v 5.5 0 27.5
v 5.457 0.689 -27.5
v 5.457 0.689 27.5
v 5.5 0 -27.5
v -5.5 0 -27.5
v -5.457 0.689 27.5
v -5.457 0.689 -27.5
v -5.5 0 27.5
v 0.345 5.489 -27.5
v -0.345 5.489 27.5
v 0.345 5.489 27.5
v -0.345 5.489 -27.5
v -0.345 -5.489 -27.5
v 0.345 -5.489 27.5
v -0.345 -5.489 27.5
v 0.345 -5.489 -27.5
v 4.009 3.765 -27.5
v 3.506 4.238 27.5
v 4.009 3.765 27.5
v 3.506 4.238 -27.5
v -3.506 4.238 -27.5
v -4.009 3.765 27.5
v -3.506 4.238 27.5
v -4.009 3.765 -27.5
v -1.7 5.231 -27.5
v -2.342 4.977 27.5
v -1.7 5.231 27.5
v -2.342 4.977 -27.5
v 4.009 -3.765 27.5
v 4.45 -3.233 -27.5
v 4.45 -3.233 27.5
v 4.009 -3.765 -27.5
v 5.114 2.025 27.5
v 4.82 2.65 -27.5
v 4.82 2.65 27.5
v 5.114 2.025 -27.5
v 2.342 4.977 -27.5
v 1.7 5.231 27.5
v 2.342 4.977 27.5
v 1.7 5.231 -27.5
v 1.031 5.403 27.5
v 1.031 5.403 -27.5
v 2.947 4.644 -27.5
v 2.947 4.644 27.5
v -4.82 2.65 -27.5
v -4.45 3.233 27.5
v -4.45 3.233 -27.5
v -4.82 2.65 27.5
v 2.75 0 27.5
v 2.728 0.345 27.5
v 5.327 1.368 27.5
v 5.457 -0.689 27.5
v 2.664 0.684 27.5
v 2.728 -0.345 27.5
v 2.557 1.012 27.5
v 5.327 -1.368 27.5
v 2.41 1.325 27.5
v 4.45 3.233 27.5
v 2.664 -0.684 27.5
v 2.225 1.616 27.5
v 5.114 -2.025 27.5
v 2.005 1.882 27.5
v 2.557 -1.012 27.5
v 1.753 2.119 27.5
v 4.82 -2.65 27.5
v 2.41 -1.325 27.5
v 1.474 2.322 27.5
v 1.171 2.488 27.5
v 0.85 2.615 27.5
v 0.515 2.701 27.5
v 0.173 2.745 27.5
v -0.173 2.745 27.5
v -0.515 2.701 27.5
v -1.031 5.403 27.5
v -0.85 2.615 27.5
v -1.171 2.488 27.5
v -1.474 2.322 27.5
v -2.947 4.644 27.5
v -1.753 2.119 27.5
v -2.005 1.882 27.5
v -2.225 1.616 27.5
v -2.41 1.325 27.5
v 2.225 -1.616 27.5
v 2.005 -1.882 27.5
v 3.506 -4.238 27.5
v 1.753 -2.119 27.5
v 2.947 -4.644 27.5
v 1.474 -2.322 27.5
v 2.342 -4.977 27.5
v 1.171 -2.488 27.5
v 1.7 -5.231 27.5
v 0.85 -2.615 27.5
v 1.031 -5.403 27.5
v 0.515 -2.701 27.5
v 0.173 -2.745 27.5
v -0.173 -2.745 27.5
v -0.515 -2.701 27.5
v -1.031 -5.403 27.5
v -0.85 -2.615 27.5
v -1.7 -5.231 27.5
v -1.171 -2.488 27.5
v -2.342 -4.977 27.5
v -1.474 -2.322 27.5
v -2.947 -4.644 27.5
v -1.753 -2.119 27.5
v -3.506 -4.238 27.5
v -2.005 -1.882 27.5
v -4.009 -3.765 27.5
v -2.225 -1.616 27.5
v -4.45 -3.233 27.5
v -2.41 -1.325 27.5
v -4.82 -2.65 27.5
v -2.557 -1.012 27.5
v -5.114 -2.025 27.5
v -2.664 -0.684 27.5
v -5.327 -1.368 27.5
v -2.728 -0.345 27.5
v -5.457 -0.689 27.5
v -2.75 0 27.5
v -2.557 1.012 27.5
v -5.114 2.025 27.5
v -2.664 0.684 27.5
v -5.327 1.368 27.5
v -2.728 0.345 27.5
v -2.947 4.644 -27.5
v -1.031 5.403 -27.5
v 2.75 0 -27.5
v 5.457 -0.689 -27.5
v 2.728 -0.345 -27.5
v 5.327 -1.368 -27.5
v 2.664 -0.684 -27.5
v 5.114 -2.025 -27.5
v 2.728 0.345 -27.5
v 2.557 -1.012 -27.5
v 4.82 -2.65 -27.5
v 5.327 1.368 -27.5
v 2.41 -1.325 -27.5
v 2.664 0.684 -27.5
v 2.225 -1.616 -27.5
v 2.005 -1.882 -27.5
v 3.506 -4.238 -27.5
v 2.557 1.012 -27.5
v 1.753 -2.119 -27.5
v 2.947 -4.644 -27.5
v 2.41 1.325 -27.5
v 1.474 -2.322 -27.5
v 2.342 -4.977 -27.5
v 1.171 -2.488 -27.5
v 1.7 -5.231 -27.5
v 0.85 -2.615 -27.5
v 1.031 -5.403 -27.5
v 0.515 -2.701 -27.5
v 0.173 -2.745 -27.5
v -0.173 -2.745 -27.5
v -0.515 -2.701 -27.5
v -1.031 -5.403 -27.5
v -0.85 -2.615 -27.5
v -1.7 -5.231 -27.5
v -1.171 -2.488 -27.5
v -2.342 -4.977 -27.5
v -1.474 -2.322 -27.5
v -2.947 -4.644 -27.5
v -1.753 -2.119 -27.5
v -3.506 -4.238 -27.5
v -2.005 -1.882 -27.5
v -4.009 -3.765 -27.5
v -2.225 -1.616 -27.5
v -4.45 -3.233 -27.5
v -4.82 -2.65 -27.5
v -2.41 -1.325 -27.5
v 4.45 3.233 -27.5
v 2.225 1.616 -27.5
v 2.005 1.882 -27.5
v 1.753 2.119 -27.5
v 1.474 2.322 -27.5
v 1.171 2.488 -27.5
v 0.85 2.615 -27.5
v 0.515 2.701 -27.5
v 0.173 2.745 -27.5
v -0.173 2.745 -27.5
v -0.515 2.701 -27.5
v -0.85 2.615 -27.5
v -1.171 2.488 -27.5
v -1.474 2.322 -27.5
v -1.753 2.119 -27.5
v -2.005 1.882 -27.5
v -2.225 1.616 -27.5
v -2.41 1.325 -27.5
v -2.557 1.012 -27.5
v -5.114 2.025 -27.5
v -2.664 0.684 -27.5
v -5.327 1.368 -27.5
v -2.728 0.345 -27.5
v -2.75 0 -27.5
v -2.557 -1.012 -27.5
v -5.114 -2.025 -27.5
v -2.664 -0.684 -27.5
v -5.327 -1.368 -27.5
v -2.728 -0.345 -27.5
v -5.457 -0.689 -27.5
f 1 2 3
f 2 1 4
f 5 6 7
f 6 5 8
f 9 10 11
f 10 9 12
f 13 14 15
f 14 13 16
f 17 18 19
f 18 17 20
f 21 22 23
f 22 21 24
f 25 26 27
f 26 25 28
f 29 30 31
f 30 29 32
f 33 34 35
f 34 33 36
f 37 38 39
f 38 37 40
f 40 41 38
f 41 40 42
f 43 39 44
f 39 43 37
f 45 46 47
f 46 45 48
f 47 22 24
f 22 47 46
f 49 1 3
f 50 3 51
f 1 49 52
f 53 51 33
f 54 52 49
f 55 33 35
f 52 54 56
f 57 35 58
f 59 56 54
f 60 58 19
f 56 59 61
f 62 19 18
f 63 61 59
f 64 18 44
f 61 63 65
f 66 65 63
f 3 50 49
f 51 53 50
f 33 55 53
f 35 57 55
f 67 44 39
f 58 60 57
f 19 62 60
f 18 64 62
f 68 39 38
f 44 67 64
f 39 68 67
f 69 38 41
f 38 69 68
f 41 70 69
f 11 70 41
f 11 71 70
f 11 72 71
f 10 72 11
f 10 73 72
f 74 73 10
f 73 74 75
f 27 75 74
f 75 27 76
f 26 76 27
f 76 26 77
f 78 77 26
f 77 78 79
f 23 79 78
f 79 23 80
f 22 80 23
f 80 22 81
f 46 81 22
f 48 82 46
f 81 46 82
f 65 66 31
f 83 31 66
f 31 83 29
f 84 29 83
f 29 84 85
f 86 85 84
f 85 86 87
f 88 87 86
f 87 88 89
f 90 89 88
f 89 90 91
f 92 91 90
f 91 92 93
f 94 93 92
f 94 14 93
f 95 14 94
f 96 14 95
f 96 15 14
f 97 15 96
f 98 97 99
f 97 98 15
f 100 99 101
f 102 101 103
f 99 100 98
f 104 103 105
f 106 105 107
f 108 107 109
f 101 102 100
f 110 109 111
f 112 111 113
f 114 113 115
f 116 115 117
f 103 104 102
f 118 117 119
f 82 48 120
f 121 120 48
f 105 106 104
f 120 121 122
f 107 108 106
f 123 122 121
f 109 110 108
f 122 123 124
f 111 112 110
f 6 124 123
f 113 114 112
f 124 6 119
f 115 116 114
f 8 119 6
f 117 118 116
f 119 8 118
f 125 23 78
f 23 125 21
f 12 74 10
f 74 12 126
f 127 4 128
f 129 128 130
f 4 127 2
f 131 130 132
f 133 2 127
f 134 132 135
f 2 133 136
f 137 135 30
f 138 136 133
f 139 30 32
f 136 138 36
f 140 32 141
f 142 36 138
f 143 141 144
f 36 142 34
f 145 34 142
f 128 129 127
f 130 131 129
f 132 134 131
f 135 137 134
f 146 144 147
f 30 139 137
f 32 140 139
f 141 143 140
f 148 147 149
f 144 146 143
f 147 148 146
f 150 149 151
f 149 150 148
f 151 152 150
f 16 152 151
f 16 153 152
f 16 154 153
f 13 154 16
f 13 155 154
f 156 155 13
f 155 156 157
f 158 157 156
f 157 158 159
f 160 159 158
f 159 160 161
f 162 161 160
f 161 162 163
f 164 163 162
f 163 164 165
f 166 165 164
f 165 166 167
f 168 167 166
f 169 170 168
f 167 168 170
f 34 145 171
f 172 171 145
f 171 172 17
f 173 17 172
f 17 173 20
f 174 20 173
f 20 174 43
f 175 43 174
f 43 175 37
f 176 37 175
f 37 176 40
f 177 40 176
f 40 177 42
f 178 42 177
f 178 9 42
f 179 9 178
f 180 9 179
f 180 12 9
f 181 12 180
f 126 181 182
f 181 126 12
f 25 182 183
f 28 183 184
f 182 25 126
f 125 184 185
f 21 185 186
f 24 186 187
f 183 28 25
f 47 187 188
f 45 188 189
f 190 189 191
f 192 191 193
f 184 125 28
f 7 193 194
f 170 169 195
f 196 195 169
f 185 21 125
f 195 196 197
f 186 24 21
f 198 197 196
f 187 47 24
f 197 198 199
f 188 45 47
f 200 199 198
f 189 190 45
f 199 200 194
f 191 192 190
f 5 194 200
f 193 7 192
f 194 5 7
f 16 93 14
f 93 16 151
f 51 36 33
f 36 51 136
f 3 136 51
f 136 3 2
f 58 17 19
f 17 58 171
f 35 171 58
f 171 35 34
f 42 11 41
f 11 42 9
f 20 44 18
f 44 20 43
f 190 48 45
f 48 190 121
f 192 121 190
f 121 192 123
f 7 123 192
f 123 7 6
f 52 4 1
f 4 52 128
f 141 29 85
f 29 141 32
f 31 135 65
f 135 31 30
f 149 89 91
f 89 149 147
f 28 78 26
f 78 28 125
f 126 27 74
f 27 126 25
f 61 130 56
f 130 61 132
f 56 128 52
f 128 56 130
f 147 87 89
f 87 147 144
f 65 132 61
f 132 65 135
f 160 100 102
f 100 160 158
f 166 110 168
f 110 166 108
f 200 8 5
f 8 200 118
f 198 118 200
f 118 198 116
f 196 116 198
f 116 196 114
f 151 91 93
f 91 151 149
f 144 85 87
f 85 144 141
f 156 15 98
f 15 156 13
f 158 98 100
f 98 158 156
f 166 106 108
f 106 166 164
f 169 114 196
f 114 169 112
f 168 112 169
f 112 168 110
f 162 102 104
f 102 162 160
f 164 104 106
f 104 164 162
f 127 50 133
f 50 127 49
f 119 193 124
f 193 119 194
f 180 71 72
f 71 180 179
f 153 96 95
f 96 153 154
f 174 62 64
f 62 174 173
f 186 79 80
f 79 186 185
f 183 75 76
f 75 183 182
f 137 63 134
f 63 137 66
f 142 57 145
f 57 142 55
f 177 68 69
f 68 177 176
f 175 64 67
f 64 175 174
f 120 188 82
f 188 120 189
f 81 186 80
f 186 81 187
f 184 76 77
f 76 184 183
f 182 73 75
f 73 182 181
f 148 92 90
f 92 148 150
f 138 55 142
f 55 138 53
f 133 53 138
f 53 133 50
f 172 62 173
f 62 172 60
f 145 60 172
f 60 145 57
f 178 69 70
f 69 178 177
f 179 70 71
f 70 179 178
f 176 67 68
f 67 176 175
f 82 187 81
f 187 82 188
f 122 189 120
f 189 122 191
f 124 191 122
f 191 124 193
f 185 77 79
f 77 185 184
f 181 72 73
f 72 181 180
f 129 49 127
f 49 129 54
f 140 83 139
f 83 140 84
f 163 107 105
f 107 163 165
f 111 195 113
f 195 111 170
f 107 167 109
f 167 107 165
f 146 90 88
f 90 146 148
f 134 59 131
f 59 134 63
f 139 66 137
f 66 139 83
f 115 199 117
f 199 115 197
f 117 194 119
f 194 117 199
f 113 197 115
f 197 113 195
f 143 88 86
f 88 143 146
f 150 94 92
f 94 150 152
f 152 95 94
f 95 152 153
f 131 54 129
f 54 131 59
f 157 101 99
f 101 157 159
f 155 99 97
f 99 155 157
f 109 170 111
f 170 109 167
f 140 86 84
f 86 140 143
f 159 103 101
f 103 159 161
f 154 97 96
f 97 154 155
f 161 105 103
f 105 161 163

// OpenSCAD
$fn = 50;


difference() {
	union() {
		translate(v = [0, 0, -27.5000000000]) {
			cylinder(h = 55, r = 5.5000000000);
		}
	}
	union() {
		translate(v = [0, 0, -100.0000000000]) {
			cylinder(h = 200, r = 2.7500000000);
		}
	}
}
